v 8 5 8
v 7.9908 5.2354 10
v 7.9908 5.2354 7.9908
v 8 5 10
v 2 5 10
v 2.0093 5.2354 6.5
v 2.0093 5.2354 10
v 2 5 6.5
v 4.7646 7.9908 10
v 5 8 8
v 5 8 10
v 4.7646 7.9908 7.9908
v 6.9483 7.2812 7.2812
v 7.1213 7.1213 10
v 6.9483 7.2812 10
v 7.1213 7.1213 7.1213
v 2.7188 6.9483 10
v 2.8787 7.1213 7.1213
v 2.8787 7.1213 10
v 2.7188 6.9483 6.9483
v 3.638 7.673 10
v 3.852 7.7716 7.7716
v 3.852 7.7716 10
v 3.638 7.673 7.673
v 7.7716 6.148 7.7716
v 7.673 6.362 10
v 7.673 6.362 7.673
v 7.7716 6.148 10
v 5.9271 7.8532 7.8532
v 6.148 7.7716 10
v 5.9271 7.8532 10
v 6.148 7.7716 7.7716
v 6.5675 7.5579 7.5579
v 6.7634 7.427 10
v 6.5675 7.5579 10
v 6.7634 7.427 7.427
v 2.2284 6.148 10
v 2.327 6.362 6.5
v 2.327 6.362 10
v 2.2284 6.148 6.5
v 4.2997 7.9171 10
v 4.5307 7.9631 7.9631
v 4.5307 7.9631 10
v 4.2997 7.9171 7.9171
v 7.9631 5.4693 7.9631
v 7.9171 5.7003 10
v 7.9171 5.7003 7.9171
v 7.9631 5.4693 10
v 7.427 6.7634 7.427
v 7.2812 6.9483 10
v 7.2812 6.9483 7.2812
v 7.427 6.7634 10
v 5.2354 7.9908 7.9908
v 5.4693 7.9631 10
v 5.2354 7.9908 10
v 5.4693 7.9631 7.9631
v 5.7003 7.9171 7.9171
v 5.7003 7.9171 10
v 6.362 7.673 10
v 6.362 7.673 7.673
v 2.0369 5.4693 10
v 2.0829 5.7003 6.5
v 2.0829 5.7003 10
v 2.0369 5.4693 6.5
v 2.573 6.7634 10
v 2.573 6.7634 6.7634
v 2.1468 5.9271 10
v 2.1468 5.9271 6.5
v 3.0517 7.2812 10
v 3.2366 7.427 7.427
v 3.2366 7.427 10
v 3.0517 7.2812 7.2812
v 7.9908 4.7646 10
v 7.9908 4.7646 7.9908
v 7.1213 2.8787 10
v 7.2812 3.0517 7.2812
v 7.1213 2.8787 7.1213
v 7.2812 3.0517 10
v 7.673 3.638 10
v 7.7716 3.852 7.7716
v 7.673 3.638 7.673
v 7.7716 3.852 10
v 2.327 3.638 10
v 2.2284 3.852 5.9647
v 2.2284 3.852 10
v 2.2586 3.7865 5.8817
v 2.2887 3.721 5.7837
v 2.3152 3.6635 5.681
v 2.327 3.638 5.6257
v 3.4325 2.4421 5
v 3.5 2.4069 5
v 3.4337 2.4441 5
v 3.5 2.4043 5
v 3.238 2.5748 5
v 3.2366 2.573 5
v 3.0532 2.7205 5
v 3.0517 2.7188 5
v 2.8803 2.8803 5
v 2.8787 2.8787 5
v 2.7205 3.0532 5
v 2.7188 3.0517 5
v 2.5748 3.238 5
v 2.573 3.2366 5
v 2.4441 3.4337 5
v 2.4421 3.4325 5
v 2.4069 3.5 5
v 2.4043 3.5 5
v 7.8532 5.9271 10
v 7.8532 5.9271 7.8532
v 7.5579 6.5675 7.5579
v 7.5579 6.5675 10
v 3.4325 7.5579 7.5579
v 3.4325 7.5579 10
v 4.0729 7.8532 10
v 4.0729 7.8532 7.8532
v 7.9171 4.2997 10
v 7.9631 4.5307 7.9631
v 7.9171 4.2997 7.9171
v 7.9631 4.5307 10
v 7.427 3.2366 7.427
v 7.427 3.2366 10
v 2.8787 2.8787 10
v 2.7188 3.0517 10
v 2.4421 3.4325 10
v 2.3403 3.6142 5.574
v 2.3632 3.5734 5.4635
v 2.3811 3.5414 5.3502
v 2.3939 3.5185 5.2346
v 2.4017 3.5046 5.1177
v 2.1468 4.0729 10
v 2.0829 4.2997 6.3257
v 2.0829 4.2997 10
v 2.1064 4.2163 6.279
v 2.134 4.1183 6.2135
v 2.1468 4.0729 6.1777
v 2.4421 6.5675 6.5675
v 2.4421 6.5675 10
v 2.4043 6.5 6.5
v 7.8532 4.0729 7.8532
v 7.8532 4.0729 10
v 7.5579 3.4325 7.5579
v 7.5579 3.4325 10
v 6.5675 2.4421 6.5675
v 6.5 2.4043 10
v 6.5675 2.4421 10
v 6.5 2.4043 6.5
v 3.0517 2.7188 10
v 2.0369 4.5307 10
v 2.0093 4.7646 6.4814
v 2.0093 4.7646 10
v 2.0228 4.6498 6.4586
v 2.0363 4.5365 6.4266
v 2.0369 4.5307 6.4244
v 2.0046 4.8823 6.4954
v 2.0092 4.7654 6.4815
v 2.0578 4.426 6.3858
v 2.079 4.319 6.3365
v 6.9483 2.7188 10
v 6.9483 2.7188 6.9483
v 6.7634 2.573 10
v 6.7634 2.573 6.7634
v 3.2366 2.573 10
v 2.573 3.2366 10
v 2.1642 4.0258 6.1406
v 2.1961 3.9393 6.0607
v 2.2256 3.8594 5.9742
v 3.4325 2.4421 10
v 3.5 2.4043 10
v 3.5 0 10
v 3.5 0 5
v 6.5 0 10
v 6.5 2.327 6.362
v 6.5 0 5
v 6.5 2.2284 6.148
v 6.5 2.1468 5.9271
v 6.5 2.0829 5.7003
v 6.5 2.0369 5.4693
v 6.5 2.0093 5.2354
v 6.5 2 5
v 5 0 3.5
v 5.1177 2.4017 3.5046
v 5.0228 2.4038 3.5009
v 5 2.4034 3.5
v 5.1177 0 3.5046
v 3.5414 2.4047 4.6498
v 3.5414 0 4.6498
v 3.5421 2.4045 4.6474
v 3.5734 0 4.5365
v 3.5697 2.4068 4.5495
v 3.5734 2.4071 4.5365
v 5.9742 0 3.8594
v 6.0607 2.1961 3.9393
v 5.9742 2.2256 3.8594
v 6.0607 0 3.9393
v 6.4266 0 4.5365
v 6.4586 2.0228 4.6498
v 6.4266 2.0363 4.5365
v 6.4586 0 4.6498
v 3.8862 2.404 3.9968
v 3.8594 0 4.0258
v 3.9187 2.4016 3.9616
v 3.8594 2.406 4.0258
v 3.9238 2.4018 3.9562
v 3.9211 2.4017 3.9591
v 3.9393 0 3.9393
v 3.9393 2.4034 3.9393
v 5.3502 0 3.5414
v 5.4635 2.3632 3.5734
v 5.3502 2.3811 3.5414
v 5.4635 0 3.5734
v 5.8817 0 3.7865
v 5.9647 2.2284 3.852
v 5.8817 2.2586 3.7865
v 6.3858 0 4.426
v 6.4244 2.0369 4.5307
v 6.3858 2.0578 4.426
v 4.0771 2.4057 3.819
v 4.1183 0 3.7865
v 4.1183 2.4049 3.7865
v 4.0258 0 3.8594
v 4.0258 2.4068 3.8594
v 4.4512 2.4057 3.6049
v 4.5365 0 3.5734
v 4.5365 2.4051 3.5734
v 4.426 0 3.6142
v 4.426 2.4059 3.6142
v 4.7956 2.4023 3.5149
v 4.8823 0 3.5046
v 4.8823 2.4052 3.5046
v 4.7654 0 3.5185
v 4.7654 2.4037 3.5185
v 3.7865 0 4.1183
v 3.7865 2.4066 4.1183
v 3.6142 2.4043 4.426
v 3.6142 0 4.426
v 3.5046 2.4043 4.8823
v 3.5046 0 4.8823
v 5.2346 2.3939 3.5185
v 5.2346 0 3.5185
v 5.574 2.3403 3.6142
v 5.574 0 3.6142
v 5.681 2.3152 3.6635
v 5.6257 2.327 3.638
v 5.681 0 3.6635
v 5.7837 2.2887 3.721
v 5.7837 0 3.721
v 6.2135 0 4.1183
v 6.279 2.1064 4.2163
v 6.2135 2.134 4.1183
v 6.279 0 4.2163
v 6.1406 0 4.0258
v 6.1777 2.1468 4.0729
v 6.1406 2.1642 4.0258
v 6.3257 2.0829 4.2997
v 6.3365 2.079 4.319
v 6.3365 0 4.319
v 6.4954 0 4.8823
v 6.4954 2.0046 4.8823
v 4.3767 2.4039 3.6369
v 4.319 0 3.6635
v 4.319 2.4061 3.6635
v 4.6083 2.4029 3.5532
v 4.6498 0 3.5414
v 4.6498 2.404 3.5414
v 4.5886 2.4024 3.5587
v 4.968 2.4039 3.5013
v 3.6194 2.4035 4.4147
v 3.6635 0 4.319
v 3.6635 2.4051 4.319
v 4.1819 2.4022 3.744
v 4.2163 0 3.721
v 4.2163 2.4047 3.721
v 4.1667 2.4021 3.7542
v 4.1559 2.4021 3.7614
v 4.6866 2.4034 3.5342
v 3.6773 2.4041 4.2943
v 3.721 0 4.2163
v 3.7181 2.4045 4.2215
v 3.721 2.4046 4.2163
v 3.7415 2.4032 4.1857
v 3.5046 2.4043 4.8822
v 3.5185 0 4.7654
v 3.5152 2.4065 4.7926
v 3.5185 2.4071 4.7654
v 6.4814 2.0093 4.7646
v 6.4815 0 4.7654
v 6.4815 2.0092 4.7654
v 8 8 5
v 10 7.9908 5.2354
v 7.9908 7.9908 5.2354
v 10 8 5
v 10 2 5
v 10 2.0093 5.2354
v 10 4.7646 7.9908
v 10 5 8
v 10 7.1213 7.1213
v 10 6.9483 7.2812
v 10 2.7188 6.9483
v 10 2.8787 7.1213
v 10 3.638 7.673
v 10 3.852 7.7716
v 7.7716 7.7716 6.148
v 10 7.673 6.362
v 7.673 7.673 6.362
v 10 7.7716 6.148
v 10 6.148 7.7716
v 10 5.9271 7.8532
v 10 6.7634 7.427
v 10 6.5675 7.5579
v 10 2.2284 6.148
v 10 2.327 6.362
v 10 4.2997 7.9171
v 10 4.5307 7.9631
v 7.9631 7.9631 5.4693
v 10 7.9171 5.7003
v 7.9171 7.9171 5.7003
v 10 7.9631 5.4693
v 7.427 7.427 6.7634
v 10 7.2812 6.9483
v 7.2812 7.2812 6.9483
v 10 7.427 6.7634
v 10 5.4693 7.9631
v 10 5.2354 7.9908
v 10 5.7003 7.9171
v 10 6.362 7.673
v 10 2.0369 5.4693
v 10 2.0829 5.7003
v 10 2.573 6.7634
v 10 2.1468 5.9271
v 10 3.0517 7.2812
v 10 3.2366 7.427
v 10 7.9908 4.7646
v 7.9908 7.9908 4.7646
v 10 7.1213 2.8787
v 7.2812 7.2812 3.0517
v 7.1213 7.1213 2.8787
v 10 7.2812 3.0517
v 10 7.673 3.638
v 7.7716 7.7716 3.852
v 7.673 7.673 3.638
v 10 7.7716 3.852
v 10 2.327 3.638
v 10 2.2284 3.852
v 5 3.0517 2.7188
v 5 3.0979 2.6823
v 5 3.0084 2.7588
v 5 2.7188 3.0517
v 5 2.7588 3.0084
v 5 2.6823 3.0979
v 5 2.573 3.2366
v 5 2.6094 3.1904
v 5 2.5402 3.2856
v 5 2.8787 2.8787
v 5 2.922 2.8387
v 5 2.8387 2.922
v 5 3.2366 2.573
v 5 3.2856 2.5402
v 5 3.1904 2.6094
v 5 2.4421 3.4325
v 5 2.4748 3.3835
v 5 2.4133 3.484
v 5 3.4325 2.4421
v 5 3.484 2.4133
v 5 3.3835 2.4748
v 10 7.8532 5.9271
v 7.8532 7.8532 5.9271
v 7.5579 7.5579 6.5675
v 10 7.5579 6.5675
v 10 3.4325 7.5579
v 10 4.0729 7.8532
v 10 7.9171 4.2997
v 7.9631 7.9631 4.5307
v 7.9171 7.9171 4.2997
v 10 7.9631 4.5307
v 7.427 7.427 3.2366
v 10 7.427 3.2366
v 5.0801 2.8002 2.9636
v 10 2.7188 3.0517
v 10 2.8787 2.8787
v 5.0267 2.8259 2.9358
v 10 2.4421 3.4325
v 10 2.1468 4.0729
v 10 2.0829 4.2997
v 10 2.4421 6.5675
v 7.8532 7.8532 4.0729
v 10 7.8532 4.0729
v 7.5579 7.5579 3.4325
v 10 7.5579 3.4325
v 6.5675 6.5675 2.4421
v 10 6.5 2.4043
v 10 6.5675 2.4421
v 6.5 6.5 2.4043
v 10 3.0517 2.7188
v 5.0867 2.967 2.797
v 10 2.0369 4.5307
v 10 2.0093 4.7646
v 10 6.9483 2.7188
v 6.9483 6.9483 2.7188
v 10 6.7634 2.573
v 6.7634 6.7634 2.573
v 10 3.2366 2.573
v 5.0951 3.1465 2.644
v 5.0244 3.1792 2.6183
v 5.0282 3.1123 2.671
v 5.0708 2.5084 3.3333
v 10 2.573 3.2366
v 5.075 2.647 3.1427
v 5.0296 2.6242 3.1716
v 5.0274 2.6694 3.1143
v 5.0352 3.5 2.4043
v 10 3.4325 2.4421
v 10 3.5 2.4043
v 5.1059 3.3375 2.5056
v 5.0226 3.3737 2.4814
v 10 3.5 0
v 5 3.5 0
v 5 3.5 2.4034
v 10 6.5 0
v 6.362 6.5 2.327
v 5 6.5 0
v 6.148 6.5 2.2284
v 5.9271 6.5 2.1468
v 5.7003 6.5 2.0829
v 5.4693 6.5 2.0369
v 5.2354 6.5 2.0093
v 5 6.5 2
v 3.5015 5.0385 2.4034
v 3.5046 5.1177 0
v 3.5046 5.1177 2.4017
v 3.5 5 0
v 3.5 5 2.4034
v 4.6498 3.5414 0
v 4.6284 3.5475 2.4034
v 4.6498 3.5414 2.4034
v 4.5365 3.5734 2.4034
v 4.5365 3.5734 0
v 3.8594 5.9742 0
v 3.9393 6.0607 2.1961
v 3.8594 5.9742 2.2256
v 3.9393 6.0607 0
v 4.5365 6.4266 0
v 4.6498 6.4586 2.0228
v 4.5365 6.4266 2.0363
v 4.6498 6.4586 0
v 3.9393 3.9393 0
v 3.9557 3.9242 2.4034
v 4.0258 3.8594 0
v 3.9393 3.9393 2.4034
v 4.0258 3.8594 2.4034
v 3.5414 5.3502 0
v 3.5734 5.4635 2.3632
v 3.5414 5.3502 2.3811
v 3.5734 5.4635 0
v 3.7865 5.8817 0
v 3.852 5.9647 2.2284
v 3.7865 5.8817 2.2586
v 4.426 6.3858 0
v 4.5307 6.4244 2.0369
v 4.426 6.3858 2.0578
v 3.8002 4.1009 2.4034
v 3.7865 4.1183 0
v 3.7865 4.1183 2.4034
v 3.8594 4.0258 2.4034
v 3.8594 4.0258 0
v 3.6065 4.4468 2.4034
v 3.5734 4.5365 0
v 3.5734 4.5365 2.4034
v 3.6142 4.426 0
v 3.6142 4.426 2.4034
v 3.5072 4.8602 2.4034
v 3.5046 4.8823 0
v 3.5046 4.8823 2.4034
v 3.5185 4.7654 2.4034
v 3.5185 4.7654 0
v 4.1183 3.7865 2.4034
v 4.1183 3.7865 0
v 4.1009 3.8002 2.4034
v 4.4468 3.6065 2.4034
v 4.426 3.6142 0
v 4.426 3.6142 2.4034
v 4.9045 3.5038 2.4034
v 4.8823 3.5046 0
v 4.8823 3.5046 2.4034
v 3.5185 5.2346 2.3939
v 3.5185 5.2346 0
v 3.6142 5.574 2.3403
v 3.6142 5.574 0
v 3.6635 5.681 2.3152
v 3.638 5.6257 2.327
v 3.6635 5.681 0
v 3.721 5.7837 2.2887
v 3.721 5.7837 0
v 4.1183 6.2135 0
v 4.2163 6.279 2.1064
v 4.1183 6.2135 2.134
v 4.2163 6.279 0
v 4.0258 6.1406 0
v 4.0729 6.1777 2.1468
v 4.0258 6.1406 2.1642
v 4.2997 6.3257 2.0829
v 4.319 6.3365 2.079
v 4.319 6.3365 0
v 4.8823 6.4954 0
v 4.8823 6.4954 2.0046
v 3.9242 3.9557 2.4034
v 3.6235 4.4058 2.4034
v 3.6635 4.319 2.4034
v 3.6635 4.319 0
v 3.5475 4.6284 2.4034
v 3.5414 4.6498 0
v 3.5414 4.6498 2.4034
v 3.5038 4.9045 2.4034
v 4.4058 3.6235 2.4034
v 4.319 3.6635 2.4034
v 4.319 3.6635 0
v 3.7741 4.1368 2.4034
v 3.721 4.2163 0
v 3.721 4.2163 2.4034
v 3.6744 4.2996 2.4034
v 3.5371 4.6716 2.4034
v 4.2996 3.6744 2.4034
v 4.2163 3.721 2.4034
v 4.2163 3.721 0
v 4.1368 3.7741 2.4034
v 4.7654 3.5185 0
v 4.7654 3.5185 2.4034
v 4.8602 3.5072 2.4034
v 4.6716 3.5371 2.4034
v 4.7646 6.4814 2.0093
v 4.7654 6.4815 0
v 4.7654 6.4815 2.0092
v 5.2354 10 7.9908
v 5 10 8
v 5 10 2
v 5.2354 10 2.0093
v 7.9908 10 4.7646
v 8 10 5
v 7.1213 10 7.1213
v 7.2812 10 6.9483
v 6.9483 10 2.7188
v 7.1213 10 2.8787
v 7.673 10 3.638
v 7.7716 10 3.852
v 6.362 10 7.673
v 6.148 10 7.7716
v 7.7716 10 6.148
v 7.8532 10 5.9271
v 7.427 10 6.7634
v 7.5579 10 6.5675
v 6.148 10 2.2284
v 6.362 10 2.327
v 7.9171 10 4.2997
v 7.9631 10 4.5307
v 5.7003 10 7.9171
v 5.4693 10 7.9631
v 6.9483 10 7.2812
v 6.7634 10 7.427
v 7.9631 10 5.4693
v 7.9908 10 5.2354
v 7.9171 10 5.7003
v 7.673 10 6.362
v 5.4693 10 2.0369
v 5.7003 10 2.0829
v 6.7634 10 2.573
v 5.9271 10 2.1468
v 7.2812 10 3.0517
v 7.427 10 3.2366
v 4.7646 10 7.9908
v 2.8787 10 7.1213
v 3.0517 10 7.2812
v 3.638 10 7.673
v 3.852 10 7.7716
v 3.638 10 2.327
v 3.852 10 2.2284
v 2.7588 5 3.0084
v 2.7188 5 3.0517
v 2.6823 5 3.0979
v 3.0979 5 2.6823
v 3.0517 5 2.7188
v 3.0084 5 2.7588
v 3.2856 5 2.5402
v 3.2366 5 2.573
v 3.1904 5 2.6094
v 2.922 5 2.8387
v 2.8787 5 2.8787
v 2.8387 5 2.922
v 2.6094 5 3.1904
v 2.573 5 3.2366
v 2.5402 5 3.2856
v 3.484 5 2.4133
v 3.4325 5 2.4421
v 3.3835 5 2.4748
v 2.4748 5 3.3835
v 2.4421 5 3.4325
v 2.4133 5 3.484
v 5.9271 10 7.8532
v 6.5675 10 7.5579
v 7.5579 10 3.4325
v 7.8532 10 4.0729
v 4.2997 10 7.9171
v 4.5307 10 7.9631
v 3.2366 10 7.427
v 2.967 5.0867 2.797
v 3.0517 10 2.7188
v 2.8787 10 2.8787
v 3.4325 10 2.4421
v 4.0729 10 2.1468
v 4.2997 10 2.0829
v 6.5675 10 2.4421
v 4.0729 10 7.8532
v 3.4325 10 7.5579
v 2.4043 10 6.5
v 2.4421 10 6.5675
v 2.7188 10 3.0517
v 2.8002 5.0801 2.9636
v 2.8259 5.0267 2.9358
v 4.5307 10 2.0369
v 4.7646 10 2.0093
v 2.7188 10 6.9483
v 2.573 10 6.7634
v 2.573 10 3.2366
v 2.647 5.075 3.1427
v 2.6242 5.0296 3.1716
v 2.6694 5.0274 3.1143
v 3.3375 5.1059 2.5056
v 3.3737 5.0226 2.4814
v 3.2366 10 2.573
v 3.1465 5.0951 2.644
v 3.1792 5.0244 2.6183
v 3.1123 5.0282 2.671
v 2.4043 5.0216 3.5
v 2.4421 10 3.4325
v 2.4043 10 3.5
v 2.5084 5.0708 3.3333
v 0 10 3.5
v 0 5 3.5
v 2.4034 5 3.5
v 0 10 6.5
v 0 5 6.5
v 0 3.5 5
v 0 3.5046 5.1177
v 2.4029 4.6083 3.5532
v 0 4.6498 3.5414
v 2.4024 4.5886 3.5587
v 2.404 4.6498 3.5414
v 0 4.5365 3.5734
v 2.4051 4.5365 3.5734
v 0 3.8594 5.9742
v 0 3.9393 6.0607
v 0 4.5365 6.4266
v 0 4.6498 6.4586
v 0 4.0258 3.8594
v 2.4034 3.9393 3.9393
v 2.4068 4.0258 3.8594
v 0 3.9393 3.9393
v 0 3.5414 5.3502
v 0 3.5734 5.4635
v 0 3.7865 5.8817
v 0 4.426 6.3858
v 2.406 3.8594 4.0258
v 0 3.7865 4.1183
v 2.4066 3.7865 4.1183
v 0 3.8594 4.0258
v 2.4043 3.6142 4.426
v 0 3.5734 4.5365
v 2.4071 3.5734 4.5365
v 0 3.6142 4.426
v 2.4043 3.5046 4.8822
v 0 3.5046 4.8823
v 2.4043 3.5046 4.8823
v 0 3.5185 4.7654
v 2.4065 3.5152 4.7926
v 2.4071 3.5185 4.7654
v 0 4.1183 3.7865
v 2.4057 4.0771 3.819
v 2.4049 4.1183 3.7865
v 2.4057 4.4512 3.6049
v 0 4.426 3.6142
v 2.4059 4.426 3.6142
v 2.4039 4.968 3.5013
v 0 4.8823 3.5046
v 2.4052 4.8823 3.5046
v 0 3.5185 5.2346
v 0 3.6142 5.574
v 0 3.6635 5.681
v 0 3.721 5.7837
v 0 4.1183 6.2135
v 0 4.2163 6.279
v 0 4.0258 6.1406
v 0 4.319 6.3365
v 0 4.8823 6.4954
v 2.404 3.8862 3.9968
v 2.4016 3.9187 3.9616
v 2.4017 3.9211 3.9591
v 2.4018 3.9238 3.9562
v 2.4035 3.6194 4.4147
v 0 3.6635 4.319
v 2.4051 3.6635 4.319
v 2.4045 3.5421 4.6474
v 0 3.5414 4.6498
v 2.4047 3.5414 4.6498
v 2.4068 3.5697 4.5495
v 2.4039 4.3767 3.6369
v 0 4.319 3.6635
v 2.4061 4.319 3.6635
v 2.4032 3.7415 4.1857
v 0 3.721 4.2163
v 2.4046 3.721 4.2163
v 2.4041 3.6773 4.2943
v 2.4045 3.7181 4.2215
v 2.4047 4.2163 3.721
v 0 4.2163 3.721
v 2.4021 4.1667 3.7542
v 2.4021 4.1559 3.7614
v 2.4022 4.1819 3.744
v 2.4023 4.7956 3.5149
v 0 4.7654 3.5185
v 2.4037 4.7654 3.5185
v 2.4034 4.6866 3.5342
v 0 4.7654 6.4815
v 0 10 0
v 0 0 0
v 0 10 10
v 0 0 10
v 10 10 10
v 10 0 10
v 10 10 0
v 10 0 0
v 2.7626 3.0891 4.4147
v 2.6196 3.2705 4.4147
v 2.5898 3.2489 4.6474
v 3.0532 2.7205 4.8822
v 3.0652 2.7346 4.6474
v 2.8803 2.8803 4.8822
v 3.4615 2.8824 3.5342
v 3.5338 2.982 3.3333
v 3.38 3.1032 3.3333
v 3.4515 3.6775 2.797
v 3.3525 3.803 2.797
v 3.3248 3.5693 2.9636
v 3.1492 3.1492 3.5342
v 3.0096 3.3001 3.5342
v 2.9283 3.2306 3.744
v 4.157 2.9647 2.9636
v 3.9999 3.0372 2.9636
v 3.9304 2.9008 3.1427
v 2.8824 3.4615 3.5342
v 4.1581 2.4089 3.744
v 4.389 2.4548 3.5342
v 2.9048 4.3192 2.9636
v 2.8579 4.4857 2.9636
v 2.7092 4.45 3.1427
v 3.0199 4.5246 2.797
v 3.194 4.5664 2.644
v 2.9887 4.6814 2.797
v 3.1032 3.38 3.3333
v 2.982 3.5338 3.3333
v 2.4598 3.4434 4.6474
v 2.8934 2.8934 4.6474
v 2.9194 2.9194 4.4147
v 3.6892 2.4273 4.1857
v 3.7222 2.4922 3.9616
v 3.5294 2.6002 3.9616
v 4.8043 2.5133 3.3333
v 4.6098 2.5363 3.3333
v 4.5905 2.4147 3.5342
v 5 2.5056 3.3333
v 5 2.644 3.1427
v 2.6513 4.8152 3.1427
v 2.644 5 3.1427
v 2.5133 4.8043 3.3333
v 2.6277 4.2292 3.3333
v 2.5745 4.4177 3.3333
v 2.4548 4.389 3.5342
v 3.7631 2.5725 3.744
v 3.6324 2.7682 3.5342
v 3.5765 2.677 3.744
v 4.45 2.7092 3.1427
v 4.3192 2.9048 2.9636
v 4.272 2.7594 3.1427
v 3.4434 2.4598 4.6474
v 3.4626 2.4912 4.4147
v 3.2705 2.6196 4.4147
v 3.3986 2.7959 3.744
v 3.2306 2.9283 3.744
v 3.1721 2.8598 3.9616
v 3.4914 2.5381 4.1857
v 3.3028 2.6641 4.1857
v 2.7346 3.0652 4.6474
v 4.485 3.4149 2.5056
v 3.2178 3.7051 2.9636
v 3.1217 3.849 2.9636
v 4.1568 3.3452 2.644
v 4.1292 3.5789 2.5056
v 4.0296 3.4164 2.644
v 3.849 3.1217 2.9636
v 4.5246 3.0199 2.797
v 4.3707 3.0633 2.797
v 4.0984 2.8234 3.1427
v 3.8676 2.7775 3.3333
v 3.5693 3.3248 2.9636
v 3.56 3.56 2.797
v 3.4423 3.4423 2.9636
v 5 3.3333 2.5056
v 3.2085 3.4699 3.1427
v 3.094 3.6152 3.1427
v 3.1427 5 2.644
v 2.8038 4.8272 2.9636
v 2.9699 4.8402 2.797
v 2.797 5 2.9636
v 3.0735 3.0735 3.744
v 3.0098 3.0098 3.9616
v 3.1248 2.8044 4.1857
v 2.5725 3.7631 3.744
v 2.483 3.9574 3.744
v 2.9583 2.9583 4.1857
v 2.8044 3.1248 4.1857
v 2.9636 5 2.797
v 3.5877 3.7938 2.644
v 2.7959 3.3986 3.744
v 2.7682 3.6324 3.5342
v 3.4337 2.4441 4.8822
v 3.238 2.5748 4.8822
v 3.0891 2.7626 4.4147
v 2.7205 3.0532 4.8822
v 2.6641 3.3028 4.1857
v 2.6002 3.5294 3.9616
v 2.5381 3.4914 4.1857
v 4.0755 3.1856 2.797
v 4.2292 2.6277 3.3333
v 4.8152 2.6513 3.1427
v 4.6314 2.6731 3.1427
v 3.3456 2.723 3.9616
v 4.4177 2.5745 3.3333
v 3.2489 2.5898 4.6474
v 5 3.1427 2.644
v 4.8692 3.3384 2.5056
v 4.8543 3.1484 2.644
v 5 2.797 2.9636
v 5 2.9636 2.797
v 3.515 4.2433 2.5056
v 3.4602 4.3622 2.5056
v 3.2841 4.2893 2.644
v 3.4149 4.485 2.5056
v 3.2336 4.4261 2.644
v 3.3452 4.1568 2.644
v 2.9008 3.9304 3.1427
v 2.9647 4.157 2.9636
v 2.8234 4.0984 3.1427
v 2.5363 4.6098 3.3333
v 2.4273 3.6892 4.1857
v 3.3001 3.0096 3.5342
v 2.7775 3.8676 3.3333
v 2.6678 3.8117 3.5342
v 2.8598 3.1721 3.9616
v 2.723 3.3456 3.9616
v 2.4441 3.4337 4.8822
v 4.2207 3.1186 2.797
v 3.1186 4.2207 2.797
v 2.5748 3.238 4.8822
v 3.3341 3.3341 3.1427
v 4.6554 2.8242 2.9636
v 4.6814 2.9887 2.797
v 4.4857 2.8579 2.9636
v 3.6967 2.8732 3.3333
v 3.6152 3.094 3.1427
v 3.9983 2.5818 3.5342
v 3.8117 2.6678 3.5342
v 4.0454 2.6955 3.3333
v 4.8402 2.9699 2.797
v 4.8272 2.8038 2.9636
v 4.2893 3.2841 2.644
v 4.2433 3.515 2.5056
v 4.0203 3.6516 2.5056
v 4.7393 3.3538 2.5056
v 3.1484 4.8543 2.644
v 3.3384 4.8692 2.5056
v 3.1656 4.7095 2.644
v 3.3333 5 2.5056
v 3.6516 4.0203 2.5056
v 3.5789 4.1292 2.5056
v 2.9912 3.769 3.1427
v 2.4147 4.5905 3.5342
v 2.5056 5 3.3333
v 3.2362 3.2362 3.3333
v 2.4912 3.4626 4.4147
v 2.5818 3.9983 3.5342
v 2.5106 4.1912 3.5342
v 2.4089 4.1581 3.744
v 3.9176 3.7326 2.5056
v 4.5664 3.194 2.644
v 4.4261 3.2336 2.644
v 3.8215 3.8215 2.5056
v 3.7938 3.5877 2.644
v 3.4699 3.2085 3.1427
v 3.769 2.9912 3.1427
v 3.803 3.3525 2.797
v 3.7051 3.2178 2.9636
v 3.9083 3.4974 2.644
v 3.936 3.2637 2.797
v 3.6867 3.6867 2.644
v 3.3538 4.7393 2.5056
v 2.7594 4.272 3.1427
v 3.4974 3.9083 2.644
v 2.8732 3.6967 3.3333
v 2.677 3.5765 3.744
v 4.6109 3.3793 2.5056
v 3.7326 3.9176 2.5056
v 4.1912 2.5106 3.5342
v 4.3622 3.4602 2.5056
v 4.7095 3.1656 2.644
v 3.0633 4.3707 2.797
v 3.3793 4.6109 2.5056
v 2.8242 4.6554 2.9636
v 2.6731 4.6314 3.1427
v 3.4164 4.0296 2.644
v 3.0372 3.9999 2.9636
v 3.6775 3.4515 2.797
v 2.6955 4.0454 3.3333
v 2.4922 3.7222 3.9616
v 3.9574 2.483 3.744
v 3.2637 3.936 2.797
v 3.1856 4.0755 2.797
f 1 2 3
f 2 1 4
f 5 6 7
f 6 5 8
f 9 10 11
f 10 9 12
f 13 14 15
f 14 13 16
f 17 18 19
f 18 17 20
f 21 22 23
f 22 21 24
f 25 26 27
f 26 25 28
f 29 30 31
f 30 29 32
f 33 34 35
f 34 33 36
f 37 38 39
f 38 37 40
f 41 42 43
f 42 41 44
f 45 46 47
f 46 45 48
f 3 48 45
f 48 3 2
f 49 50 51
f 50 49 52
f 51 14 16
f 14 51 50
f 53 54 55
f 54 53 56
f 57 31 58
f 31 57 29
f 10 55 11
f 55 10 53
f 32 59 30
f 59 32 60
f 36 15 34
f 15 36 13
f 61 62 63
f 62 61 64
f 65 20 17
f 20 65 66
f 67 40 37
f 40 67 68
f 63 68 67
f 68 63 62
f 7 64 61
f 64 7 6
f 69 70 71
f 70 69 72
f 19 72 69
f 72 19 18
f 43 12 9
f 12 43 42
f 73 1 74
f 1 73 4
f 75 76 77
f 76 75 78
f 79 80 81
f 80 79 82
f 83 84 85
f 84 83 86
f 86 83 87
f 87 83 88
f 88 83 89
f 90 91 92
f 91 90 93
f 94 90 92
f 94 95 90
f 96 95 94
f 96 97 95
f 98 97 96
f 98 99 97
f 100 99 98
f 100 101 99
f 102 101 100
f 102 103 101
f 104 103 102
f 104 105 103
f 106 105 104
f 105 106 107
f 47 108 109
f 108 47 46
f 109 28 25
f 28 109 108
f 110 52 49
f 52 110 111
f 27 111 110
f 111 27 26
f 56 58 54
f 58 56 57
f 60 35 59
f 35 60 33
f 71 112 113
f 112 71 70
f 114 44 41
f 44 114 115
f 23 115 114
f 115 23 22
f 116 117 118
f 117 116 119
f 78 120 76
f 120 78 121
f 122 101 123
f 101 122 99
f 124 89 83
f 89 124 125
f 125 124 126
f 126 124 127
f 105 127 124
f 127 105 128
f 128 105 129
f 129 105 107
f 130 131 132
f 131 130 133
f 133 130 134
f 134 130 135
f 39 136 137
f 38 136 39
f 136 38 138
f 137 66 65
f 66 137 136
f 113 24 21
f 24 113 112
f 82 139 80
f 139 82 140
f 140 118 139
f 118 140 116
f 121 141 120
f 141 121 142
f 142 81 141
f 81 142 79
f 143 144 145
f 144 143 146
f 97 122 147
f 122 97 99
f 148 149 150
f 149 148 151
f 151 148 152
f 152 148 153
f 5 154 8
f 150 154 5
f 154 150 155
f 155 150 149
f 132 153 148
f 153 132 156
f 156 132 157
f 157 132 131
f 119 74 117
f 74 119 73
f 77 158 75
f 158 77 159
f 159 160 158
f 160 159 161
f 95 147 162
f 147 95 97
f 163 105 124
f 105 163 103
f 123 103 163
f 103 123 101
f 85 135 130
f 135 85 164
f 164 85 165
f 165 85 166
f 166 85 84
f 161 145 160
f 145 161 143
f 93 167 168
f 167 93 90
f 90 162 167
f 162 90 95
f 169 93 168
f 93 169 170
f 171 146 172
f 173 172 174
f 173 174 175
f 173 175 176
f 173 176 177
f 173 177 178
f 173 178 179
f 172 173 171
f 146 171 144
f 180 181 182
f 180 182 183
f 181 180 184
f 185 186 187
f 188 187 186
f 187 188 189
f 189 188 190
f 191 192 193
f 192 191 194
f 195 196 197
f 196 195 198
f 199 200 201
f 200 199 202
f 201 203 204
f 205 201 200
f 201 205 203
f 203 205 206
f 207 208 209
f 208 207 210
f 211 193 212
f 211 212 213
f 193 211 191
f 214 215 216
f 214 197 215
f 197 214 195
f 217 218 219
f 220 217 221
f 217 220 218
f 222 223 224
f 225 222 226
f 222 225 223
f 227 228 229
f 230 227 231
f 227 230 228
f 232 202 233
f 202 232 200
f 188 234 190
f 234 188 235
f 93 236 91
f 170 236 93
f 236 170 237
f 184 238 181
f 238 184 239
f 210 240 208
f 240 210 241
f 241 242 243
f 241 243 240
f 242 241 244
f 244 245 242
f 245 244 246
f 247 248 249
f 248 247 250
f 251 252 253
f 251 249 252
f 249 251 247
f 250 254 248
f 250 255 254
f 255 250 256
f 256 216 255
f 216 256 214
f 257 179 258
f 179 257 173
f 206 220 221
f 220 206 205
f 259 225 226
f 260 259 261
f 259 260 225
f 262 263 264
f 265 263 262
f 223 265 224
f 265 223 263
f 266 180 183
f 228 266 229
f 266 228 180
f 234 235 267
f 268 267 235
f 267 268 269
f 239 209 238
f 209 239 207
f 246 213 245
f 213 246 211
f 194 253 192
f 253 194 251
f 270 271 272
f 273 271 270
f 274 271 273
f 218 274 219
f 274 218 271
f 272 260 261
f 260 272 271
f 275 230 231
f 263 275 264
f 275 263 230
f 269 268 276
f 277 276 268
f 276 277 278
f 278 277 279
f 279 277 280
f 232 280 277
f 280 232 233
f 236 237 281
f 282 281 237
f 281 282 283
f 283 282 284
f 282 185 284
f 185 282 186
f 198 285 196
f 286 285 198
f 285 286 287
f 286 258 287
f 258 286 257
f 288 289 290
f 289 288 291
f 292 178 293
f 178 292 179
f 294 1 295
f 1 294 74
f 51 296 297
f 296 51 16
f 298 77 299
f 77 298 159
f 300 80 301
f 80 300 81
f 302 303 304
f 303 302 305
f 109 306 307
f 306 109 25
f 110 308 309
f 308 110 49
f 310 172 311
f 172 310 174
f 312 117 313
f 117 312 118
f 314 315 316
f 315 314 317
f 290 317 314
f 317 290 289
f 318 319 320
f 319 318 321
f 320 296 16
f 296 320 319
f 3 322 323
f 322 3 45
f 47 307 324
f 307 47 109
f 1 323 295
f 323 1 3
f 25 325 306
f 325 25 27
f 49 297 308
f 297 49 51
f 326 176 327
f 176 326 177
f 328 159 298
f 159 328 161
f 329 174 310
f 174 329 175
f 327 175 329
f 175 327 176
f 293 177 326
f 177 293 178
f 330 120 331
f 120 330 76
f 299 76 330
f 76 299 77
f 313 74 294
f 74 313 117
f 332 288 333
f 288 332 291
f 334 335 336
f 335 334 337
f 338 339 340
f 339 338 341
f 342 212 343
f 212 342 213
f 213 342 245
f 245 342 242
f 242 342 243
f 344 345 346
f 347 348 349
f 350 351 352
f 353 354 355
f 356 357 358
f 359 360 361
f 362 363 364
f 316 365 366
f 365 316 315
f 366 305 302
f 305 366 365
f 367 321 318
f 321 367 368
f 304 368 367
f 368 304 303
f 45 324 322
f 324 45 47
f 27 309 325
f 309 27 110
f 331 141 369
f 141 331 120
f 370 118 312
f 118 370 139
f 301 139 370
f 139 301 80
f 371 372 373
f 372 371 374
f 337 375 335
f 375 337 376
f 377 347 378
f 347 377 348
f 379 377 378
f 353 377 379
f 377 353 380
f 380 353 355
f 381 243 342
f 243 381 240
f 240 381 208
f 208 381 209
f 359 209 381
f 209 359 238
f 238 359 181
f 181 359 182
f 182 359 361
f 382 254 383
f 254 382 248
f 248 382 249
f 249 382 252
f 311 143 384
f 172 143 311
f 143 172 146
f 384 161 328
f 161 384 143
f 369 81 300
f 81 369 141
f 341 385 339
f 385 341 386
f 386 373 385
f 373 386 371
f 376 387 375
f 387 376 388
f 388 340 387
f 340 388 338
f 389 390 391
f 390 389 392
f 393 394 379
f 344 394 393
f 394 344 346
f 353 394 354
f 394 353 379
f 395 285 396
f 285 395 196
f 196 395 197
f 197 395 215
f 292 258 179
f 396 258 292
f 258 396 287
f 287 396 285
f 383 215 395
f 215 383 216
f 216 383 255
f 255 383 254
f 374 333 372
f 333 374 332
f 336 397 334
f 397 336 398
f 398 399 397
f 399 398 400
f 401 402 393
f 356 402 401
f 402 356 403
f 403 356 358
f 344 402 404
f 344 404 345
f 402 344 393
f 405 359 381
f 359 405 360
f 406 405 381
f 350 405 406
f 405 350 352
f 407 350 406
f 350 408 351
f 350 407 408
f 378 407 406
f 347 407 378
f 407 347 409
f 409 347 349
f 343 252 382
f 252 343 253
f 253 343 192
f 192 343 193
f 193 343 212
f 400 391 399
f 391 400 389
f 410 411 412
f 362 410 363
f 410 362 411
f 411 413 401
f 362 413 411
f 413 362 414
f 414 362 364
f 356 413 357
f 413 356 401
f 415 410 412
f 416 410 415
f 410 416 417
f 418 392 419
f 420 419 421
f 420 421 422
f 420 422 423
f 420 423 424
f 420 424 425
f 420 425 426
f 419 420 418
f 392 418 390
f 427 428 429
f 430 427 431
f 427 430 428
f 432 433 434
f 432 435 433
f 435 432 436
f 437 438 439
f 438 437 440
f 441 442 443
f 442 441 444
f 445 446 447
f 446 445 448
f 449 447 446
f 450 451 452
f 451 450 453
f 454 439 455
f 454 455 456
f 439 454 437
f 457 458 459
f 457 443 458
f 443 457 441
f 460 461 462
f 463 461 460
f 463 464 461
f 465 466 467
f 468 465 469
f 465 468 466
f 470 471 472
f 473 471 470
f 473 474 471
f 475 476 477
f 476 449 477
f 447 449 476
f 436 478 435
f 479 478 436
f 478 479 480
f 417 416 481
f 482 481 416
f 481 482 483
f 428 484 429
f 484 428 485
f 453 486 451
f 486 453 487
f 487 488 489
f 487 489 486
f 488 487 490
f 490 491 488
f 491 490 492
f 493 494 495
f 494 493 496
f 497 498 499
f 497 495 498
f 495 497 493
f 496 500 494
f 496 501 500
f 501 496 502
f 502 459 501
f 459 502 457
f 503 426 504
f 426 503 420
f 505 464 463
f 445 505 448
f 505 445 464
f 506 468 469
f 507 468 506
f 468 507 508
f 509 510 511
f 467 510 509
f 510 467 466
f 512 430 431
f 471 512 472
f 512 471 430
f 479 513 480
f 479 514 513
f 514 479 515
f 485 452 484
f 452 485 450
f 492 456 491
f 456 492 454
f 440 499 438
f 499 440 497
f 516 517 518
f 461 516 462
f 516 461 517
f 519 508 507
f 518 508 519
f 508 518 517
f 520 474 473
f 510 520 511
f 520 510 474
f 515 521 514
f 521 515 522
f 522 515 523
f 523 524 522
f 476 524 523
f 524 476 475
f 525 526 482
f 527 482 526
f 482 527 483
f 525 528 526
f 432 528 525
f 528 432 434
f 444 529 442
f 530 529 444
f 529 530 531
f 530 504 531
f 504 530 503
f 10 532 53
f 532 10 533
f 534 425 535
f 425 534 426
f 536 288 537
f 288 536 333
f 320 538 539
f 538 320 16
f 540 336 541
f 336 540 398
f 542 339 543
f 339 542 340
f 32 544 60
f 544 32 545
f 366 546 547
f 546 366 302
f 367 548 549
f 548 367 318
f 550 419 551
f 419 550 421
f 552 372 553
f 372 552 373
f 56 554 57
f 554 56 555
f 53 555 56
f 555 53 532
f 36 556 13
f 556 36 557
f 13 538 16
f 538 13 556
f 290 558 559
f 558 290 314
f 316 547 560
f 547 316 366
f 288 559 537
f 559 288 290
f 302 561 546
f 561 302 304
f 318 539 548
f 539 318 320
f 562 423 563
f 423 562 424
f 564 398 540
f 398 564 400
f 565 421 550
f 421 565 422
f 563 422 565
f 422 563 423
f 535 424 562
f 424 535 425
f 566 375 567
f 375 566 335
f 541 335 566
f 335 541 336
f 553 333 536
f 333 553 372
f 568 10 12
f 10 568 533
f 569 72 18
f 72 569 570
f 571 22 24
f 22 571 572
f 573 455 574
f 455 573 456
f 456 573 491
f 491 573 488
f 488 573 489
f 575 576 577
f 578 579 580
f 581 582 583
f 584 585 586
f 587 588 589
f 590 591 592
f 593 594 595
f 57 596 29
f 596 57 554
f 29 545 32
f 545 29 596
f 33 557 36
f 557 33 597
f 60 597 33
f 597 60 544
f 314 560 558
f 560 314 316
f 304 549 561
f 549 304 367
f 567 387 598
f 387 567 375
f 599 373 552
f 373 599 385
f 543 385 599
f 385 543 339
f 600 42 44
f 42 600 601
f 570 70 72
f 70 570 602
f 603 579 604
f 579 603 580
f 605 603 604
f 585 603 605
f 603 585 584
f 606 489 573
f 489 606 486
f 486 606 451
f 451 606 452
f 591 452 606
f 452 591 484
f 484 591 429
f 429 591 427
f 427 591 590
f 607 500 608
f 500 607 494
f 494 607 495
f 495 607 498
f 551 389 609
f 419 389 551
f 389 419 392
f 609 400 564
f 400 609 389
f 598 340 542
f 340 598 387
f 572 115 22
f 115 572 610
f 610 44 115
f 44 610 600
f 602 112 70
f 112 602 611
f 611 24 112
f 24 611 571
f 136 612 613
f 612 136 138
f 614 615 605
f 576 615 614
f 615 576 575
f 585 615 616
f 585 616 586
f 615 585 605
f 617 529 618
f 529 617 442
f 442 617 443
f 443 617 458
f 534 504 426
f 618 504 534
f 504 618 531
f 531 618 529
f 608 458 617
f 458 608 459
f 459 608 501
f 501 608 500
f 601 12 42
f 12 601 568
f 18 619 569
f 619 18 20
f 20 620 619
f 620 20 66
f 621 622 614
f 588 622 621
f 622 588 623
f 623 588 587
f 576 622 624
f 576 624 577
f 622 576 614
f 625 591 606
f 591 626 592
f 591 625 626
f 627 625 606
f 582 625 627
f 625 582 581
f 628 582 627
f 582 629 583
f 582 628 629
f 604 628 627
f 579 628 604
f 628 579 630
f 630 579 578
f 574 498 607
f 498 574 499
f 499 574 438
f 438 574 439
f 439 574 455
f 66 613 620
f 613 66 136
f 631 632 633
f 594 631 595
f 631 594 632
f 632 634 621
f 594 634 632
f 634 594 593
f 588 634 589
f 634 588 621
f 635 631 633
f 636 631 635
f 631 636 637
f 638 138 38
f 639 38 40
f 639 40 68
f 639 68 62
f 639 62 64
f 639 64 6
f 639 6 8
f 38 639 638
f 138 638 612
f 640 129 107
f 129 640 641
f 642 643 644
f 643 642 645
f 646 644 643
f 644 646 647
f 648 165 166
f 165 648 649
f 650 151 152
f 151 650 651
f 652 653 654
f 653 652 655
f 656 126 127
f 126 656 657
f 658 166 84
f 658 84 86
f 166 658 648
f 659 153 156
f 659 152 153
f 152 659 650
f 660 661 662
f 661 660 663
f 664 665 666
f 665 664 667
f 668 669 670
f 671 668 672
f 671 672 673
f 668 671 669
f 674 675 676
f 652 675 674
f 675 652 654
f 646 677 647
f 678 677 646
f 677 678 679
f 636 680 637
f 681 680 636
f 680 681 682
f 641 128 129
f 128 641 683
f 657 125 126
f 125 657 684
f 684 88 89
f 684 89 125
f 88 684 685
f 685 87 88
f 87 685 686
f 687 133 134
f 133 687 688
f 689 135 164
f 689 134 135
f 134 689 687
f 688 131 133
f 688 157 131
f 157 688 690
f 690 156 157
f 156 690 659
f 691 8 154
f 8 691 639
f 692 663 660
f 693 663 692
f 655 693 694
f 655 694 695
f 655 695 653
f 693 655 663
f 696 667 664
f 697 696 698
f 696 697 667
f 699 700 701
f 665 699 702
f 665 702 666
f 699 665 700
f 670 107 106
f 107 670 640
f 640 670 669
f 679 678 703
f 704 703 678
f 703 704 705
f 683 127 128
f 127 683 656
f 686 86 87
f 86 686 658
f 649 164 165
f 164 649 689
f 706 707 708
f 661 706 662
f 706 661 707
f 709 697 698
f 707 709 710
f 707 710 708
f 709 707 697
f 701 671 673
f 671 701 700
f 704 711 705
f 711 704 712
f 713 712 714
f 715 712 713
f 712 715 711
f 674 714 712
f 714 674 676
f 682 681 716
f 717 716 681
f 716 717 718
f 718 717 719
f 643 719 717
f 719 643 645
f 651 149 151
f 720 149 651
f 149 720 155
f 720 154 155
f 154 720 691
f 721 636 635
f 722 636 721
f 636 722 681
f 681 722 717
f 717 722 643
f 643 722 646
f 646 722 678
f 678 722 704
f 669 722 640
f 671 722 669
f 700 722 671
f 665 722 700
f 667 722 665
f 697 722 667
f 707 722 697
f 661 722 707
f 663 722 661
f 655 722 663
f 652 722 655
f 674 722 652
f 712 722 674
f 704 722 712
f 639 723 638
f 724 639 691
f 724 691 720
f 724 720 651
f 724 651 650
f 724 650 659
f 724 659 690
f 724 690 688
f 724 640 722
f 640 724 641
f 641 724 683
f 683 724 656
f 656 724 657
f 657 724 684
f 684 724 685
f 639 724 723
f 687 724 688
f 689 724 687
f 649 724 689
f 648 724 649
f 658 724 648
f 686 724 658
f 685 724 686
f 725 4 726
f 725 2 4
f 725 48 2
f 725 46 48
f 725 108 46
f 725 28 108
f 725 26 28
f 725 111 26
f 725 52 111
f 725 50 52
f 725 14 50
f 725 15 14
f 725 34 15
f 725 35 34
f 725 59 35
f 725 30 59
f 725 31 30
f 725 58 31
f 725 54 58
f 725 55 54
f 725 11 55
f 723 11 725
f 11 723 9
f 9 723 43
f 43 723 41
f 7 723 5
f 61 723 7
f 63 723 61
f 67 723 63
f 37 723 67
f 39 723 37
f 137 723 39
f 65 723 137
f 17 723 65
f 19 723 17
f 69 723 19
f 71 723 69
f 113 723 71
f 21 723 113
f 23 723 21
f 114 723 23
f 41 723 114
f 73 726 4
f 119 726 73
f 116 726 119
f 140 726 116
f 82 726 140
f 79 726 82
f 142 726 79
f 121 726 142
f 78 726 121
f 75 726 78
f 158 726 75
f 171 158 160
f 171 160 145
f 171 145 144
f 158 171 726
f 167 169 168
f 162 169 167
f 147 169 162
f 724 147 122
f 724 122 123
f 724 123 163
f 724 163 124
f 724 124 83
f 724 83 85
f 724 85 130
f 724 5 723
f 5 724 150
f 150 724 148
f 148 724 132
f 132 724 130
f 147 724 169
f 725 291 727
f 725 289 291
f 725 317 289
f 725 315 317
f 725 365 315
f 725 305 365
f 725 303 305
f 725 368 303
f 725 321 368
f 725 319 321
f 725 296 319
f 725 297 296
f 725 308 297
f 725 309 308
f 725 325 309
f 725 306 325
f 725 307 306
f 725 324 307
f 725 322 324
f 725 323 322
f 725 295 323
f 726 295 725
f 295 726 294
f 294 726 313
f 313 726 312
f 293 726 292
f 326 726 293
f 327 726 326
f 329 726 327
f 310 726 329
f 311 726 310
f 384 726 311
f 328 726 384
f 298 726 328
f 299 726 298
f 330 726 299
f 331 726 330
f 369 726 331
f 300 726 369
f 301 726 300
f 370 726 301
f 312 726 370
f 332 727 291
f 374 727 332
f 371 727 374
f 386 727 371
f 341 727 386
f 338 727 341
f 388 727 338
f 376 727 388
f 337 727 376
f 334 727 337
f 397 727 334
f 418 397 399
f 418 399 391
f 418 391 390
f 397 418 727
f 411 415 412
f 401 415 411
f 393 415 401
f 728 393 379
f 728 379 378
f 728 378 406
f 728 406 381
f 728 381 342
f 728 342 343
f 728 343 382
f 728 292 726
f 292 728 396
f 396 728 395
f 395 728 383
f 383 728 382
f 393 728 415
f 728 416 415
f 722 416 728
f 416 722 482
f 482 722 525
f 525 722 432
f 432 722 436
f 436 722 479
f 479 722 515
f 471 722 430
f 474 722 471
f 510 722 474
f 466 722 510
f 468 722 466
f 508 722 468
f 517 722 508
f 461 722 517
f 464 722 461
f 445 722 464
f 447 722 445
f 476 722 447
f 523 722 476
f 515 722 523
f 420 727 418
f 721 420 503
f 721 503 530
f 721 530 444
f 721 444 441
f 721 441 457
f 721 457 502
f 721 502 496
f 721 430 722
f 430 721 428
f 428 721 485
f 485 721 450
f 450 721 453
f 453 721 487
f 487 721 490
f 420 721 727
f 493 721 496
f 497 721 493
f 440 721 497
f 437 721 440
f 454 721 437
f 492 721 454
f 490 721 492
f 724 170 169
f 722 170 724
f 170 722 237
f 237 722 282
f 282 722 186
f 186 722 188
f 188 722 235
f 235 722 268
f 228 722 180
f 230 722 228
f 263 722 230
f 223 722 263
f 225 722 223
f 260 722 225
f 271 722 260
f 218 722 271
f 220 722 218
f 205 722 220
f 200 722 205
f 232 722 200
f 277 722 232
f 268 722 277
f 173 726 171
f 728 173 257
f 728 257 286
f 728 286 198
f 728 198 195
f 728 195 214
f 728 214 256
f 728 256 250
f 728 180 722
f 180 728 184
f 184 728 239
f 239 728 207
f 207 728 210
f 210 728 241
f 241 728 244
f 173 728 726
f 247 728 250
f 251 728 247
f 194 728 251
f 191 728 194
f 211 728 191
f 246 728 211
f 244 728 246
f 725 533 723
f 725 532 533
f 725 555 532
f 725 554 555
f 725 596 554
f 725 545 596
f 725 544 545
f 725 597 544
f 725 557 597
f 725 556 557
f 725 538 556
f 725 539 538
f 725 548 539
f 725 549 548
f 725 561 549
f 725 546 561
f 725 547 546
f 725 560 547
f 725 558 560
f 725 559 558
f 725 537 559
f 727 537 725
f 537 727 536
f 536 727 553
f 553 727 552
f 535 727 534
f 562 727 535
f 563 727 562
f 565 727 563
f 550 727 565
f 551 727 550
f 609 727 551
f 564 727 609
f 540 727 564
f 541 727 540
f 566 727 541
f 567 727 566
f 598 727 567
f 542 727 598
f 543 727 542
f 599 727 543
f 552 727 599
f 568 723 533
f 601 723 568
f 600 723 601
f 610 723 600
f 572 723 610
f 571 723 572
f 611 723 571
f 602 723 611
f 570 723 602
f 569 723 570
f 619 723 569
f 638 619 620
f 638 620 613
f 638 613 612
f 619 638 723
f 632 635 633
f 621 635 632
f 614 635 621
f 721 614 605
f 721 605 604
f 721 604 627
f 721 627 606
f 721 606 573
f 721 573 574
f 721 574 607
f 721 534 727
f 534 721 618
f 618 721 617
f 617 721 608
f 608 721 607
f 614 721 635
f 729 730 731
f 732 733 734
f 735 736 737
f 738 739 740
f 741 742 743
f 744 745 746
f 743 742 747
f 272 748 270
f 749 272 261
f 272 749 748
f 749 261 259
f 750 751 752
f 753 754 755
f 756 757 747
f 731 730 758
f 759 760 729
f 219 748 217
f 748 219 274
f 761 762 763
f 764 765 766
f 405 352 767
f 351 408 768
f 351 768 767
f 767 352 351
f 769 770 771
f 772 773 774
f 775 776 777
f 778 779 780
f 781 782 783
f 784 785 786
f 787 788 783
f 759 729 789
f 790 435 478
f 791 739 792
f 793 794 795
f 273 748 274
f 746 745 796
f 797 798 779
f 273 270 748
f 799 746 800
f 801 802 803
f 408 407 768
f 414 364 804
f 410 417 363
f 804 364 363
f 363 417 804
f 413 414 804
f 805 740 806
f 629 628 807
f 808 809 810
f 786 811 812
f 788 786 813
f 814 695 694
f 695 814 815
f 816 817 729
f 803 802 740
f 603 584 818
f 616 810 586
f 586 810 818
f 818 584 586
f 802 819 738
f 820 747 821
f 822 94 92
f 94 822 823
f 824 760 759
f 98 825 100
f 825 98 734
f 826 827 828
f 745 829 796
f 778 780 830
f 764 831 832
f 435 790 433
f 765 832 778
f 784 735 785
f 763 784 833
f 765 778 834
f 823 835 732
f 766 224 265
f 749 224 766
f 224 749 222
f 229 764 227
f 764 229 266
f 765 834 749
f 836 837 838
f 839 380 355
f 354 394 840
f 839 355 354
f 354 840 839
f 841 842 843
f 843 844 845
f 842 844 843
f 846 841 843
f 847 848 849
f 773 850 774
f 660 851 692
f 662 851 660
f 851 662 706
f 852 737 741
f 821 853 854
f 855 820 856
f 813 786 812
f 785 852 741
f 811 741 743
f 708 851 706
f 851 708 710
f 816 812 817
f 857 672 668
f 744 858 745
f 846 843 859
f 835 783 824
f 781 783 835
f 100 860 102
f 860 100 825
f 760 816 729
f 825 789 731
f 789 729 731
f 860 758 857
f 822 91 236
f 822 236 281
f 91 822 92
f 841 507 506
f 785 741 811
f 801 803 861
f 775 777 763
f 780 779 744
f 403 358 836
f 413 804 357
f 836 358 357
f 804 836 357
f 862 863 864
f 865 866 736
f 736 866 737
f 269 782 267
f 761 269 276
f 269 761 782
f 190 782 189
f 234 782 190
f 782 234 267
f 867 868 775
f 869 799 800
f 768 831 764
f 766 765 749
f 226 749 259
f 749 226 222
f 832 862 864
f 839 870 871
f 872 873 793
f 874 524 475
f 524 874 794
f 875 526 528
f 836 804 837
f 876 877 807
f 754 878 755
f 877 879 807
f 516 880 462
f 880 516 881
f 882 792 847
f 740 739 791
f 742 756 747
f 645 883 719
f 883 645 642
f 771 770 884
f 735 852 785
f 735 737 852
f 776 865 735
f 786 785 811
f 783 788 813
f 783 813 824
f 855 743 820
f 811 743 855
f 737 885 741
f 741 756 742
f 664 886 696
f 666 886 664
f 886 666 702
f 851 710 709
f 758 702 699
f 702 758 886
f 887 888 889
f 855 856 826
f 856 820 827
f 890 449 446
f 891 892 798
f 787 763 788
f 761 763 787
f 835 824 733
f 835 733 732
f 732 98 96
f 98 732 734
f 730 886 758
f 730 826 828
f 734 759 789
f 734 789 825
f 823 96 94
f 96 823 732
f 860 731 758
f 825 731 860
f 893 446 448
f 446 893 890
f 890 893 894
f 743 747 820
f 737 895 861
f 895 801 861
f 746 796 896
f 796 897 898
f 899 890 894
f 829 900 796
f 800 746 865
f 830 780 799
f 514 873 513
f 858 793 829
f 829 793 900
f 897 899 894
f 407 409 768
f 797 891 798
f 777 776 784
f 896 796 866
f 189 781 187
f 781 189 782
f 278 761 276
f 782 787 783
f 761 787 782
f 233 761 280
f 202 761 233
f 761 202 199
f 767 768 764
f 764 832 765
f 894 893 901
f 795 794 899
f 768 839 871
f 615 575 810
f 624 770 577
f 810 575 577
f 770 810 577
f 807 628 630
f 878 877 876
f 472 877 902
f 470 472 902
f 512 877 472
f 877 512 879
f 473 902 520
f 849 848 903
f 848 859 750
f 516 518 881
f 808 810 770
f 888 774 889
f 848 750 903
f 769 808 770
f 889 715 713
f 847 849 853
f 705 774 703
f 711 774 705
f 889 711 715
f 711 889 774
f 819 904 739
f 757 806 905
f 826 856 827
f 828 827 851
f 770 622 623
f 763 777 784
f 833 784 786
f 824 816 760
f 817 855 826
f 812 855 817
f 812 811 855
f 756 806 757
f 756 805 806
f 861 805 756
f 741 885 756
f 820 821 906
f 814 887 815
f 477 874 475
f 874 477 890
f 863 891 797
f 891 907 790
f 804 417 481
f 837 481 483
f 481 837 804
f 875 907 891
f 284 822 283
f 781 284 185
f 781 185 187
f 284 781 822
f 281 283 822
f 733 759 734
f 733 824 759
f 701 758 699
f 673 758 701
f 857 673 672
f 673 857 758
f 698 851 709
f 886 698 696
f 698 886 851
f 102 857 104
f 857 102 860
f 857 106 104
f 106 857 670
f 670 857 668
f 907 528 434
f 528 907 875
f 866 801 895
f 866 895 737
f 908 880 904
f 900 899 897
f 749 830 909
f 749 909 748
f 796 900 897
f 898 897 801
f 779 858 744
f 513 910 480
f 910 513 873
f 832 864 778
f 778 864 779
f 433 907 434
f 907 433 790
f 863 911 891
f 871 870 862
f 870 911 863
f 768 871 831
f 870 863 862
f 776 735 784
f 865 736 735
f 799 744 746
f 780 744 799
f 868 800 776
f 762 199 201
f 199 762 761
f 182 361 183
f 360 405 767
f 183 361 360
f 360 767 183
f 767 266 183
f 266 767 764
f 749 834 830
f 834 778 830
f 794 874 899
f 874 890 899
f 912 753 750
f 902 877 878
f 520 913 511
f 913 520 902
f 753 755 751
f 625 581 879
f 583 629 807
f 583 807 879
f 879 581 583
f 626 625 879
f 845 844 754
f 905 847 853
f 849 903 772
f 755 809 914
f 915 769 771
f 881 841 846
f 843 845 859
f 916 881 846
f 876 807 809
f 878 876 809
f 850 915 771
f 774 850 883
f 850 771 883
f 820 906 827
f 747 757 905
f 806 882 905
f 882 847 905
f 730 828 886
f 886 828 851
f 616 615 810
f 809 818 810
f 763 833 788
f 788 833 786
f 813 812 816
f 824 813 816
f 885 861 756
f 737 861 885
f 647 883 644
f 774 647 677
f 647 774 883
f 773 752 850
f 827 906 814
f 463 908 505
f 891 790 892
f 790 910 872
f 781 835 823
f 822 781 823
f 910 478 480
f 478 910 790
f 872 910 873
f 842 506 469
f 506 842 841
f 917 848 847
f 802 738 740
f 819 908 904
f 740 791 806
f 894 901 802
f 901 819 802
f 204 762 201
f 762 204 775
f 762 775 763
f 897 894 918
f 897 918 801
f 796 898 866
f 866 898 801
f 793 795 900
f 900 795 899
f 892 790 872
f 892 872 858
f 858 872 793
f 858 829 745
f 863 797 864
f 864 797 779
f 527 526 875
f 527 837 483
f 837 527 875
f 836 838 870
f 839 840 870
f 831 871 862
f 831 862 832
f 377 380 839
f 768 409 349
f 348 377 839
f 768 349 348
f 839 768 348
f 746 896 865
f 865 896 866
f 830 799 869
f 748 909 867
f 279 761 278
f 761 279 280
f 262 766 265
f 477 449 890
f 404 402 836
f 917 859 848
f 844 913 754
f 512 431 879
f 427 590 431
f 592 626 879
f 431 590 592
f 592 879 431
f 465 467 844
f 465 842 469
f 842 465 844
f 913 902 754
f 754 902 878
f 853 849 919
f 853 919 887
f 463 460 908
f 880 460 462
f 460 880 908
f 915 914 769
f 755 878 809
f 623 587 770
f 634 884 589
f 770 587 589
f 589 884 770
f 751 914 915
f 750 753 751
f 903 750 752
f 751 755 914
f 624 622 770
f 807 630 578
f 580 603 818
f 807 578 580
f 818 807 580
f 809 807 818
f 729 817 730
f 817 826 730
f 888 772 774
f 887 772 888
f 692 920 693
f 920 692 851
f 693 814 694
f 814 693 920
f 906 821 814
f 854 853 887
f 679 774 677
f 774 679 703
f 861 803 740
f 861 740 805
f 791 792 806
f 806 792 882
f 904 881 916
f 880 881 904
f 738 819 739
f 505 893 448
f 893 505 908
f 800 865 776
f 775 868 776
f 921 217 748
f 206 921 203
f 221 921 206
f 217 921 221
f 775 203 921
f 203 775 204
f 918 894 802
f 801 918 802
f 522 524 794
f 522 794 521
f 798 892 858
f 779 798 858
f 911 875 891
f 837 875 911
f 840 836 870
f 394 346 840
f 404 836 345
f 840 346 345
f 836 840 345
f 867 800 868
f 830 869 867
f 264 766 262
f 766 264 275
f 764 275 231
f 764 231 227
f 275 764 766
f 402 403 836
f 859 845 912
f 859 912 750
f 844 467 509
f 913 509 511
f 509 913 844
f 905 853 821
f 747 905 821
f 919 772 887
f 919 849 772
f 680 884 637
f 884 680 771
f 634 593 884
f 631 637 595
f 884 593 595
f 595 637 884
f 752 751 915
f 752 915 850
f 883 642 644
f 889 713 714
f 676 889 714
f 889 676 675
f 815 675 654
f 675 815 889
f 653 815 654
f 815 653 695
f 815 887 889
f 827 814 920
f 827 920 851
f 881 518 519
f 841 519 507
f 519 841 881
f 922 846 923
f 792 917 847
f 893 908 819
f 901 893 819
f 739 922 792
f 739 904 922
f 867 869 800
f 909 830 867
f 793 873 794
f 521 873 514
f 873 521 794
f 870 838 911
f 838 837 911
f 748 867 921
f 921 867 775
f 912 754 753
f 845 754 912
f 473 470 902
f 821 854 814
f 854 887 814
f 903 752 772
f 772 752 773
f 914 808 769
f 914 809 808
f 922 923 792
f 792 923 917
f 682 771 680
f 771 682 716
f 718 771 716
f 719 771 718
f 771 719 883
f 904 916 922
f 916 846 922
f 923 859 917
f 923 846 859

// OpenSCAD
module fblb_logo(center=true) {
  offs = center ? [0,0,0] : 0.5*[1,1,1];
  $fn = 80;
  r1 = 0.3;  //0.35;
  r2 = 0.15; //0.2;
  translate(offs)
    difference() {
      cube(1,center=true);
//      translate([0,0,-0.1])
      for (r=[[[0,0,0],[0,0,0]],[[0,90,0],[0,0,90]],[[-90,0,0],[0,0,-90]]])
        rotate(r[0]) rotate(r[1]) union() {
          cylinder(r=r1,h=1.2,center=false);
          translate([0,-0.5,0.5])
            cube([2*r2,1,1],center=true);
          rotate([90,0,0])
            cylinder(r=r2,h=0.6);
        }
      sphere(r=r1);
    }
}

scale(10)
  fblb_logo(center=false);
